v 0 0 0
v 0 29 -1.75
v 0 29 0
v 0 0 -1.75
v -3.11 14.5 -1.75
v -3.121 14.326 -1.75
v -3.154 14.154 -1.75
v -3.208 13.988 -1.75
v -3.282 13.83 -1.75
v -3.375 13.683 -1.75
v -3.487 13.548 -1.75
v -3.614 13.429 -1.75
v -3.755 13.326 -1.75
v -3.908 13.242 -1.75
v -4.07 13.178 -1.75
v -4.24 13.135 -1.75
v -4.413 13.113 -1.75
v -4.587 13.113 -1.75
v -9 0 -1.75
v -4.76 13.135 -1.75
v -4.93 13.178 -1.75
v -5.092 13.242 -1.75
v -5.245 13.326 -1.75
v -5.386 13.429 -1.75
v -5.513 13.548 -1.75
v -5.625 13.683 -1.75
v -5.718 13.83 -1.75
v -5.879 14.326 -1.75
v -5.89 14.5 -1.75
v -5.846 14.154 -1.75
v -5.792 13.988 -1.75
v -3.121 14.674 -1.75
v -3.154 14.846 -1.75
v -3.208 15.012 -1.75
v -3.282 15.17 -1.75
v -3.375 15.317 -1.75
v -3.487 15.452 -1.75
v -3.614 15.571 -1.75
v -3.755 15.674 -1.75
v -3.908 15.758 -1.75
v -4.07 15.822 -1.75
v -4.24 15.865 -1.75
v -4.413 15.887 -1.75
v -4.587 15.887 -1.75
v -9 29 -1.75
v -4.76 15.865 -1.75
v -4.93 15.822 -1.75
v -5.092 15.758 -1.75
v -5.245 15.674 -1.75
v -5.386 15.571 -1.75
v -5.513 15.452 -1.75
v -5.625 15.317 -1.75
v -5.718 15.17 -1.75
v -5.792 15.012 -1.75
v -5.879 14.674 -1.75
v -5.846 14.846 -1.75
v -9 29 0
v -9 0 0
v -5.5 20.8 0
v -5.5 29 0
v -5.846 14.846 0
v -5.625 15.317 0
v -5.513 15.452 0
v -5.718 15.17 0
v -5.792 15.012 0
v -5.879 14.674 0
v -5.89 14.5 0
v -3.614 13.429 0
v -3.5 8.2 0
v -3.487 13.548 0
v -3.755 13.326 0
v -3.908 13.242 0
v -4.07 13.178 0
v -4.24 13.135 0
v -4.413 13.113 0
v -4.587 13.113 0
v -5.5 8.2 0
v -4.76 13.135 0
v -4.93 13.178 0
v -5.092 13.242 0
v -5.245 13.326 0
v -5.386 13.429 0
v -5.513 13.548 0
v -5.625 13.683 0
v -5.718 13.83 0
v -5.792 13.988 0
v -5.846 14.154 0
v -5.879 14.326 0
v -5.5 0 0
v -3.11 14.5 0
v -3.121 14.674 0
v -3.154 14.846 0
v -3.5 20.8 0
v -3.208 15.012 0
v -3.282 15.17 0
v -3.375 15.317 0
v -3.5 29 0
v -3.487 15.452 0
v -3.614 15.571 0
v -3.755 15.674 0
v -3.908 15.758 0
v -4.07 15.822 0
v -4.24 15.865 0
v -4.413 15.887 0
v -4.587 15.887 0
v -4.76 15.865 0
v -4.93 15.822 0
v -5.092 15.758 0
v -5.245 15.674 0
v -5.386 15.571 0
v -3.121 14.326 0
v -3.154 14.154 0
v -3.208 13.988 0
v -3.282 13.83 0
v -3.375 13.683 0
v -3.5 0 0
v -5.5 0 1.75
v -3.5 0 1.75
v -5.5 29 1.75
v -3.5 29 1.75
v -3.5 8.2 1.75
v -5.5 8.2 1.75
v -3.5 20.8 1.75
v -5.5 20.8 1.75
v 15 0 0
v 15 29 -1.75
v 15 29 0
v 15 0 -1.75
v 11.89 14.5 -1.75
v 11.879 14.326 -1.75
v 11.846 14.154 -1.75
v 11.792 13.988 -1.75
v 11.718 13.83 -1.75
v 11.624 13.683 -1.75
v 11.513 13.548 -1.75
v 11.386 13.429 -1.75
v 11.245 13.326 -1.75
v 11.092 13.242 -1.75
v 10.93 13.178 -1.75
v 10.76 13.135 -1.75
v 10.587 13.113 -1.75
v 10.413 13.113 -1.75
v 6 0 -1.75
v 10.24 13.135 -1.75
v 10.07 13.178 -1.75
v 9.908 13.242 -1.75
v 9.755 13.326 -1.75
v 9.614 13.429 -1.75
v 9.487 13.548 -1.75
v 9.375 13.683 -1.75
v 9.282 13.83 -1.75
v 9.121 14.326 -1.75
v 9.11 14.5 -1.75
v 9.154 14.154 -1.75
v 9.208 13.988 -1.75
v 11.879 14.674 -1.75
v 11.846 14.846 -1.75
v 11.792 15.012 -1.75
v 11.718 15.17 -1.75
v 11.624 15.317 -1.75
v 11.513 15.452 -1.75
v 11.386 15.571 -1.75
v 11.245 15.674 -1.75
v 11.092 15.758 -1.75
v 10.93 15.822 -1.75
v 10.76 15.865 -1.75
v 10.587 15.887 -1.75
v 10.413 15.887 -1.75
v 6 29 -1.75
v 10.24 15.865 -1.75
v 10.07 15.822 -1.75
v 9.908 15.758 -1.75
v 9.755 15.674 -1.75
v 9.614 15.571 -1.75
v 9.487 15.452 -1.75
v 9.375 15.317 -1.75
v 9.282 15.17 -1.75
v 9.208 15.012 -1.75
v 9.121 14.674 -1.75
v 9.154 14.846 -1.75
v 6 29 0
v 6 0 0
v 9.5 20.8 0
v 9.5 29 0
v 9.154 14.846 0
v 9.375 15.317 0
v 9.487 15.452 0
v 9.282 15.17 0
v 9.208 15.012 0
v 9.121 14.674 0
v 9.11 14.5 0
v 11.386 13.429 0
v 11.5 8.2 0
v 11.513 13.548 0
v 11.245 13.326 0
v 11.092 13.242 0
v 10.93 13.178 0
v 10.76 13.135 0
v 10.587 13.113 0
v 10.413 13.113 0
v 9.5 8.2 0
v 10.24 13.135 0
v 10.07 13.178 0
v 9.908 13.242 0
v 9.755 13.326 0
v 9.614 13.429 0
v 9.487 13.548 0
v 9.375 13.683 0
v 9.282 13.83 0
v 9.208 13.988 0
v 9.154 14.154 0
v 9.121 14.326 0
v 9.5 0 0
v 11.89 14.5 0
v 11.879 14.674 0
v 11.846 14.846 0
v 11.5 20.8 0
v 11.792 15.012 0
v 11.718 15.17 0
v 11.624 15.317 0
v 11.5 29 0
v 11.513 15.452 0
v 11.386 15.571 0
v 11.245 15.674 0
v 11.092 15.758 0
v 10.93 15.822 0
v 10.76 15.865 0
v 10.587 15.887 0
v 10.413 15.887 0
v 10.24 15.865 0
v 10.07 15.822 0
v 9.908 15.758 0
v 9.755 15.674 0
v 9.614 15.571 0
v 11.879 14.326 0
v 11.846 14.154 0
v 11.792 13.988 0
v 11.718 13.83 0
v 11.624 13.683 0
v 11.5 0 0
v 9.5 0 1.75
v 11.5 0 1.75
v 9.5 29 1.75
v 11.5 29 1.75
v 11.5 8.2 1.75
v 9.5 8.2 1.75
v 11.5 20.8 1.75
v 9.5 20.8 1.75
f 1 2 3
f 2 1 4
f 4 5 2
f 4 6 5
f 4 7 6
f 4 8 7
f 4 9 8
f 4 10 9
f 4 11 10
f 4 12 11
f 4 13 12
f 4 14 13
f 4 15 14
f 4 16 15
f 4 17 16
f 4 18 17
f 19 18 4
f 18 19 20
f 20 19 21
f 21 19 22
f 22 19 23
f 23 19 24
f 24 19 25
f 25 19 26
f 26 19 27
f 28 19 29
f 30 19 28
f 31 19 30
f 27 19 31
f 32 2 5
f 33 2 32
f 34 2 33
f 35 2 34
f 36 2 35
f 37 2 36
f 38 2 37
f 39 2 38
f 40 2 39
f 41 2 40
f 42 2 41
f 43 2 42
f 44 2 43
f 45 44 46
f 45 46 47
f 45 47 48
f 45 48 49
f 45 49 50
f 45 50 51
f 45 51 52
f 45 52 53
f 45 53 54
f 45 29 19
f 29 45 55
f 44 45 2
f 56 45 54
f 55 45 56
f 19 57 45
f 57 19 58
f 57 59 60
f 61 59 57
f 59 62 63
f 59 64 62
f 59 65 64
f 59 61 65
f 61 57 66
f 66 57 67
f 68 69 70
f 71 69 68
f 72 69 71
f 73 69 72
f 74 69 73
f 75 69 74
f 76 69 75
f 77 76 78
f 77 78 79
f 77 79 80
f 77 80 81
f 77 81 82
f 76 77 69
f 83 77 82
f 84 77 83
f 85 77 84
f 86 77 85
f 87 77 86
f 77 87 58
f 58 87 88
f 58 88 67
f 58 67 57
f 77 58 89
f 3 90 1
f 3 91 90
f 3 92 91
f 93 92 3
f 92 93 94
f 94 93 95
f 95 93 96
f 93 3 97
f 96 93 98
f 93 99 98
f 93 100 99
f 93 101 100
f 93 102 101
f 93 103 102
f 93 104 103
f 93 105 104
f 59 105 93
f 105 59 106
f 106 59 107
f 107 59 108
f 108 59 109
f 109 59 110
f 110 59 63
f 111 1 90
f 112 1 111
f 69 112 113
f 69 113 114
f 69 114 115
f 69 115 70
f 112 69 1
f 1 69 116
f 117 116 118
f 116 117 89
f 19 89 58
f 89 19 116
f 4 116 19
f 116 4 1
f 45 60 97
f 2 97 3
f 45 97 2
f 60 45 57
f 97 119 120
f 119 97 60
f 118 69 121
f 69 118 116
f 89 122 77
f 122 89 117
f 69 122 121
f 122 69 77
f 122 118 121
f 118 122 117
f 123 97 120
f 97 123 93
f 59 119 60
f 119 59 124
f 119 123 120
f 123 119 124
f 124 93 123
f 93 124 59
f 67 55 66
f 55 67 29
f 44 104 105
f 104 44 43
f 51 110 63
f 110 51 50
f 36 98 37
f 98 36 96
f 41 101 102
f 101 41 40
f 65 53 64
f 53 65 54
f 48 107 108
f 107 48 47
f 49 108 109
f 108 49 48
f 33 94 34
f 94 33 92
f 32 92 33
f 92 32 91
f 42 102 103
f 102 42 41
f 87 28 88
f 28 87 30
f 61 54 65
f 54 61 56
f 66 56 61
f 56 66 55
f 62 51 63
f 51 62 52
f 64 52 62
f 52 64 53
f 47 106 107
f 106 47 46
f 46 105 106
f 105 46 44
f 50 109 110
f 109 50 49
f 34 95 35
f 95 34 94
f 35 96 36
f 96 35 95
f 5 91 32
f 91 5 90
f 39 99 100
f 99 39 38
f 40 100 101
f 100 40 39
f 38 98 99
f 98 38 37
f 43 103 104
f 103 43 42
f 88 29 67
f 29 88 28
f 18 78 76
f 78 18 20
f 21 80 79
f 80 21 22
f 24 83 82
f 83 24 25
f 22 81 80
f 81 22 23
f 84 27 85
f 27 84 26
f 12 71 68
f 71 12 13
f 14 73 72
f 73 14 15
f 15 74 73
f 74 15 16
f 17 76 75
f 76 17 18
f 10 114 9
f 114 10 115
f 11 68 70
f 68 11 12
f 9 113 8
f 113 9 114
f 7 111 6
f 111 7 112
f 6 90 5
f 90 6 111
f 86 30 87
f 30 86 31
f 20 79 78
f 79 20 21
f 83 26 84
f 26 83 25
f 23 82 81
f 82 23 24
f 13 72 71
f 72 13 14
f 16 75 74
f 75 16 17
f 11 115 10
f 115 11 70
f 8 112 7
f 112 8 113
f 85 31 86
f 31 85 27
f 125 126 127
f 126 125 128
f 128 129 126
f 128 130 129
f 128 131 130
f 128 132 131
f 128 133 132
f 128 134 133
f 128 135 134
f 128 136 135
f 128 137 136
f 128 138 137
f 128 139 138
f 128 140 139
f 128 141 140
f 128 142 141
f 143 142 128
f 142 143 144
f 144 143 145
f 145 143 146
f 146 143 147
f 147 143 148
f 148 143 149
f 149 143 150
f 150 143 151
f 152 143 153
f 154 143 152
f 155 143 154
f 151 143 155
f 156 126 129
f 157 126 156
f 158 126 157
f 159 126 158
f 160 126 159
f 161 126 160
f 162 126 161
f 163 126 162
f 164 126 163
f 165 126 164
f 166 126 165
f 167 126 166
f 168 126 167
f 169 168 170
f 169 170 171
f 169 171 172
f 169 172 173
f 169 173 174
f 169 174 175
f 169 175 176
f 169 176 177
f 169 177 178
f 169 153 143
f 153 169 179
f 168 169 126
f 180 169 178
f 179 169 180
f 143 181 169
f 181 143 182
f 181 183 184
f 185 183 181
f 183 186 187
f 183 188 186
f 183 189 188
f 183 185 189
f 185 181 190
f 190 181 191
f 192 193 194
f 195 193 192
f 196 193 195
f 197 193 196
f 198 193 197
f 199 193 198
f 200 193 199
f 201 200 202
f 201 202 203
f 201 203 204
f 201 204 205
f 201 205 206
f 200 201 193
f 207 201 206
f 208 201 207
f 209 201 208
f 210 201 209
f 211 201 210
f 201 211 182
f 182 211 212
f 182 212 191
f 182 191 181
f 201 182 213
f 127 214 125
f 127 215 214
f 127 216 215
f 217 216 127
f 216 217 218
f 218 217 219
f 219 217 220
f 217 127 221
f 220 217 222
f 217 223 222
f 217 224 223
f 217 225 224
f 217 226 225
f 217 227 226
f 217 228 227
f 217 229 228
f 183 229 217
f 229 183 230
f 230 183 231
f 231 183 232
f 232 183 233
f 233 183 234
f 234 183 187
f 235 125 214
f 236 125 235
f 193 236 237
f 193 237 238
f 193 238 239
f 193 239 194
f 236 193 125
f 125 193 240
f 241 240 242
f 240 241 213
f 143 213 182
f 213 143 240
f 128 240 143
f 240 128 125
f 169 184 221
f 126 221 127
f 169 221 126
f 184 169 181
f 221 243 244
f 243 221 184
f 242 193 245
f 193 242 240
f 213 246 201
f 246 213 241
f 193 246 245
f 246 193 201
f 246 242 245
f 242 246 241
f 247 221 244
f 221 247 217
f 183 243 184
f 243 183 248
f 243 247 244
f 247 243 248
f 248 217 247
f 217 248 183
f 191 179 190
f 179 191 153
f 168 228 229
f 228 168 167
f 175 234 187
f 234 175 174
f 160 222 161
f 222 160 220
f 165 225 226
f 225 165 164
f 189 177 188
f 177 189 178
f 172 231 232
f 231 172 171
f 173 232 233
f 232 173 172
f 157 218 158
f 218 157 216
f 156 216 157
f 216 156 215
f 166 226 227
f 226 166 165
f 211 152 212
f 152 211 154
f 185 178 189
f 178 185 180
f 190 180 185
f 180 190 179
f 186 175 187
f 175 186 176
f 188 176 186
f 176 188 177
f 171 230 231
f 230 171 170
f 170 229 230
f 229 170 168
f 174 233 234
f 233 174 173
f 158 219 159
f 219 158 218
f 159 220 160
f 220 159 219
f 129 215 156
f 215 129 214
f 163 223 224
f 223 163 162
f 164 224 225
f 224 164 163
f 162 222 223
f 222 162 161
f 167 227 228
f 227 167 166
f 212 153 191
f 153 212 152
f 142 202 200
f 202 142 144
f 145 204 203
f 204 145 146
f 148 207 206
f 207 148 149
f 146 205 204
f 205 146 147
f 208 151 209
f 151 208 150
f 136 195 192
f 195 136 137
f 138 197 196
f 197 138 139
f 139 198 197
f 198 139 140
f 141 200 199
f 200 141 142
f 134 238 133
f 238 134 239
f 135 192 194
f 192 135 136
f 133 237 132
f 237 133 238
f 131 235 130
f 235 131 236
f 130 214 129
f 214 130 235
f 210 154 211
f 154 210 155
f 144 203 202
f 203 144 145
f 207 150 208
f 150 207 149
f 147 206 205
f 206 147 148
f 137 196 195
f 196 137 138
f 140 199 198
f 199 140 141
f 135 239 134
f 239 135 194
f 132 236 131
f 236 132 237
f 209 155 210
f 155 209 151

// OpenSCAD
/* Washers for holding board edges
 * File: cap_strip.scad
 * Author: deh
 * Latest edit: 201701292040
*/

$fn = 50;

screw_dia = 2.78;	// Dia of threads
screw_dia_head = 4.8;	// Dia of screw (pan) head
strip_thick = 1.75;
strip_width = 9;
strip_space = 46;	// Spacing between mounting holes
strip_length= (14.5*2);
strip_1stofs= strip_length/2;	// 1st hole offset
post =5.3;
stiff_wid = 2;
stiff_ht = 2;
stiff_len = strip_length/2 - post - 1;


wx = strip_width/2;

module strip()
{
   difference()
   {
      union()
      {
         cube([strip_width, strip_length, strip_thick], false);
         translate([strip_width/2 - stiff_wid/2, 0,-strip_thick])
               cube([stiff_wid, stiff_len, stiff_ht],false);
         translate([strip_width/2 - stiff_wid/2, strip_length-stiff_len,-strip_thick])
               cube([stiff_wid, stiff_len, stiff_ht],false);

      }

      union()
      {
         translate([wx, strip_1stofs, -0.01])
           cylinder(d = screw_dia, h = strip_thick + .02, center=false);
 /*        translate([wx, strip_space + strip_1stofs, -0.01])
           cylinder(d = screw_dia, h = strip_thick + .02, center=false);
*/
      }
   }


}


module strip2()
{
   difference()
   {
      union()
      {
         translate([0,0,-strip_thick])
            cube([strip_width, strip_length, strip_thick], false);

      }

      union()
      {
         translate([wx, strip_1stofs, -0.01])
           cylinder(d = screw_dia, h = strip_thick + .02, center=false);
         translate([wx, strip_space + strip_1stofs, -0.01])
           cylinder(d = screw_dia, h = strip_thick + .02, center=false);
      }
   }


}

module strips()
{
   translate([0,0,0])
     rotate([0,180,0])strip();

   translate([15,0,0])
     rotate([0,180,0])strip();

}

strips();
